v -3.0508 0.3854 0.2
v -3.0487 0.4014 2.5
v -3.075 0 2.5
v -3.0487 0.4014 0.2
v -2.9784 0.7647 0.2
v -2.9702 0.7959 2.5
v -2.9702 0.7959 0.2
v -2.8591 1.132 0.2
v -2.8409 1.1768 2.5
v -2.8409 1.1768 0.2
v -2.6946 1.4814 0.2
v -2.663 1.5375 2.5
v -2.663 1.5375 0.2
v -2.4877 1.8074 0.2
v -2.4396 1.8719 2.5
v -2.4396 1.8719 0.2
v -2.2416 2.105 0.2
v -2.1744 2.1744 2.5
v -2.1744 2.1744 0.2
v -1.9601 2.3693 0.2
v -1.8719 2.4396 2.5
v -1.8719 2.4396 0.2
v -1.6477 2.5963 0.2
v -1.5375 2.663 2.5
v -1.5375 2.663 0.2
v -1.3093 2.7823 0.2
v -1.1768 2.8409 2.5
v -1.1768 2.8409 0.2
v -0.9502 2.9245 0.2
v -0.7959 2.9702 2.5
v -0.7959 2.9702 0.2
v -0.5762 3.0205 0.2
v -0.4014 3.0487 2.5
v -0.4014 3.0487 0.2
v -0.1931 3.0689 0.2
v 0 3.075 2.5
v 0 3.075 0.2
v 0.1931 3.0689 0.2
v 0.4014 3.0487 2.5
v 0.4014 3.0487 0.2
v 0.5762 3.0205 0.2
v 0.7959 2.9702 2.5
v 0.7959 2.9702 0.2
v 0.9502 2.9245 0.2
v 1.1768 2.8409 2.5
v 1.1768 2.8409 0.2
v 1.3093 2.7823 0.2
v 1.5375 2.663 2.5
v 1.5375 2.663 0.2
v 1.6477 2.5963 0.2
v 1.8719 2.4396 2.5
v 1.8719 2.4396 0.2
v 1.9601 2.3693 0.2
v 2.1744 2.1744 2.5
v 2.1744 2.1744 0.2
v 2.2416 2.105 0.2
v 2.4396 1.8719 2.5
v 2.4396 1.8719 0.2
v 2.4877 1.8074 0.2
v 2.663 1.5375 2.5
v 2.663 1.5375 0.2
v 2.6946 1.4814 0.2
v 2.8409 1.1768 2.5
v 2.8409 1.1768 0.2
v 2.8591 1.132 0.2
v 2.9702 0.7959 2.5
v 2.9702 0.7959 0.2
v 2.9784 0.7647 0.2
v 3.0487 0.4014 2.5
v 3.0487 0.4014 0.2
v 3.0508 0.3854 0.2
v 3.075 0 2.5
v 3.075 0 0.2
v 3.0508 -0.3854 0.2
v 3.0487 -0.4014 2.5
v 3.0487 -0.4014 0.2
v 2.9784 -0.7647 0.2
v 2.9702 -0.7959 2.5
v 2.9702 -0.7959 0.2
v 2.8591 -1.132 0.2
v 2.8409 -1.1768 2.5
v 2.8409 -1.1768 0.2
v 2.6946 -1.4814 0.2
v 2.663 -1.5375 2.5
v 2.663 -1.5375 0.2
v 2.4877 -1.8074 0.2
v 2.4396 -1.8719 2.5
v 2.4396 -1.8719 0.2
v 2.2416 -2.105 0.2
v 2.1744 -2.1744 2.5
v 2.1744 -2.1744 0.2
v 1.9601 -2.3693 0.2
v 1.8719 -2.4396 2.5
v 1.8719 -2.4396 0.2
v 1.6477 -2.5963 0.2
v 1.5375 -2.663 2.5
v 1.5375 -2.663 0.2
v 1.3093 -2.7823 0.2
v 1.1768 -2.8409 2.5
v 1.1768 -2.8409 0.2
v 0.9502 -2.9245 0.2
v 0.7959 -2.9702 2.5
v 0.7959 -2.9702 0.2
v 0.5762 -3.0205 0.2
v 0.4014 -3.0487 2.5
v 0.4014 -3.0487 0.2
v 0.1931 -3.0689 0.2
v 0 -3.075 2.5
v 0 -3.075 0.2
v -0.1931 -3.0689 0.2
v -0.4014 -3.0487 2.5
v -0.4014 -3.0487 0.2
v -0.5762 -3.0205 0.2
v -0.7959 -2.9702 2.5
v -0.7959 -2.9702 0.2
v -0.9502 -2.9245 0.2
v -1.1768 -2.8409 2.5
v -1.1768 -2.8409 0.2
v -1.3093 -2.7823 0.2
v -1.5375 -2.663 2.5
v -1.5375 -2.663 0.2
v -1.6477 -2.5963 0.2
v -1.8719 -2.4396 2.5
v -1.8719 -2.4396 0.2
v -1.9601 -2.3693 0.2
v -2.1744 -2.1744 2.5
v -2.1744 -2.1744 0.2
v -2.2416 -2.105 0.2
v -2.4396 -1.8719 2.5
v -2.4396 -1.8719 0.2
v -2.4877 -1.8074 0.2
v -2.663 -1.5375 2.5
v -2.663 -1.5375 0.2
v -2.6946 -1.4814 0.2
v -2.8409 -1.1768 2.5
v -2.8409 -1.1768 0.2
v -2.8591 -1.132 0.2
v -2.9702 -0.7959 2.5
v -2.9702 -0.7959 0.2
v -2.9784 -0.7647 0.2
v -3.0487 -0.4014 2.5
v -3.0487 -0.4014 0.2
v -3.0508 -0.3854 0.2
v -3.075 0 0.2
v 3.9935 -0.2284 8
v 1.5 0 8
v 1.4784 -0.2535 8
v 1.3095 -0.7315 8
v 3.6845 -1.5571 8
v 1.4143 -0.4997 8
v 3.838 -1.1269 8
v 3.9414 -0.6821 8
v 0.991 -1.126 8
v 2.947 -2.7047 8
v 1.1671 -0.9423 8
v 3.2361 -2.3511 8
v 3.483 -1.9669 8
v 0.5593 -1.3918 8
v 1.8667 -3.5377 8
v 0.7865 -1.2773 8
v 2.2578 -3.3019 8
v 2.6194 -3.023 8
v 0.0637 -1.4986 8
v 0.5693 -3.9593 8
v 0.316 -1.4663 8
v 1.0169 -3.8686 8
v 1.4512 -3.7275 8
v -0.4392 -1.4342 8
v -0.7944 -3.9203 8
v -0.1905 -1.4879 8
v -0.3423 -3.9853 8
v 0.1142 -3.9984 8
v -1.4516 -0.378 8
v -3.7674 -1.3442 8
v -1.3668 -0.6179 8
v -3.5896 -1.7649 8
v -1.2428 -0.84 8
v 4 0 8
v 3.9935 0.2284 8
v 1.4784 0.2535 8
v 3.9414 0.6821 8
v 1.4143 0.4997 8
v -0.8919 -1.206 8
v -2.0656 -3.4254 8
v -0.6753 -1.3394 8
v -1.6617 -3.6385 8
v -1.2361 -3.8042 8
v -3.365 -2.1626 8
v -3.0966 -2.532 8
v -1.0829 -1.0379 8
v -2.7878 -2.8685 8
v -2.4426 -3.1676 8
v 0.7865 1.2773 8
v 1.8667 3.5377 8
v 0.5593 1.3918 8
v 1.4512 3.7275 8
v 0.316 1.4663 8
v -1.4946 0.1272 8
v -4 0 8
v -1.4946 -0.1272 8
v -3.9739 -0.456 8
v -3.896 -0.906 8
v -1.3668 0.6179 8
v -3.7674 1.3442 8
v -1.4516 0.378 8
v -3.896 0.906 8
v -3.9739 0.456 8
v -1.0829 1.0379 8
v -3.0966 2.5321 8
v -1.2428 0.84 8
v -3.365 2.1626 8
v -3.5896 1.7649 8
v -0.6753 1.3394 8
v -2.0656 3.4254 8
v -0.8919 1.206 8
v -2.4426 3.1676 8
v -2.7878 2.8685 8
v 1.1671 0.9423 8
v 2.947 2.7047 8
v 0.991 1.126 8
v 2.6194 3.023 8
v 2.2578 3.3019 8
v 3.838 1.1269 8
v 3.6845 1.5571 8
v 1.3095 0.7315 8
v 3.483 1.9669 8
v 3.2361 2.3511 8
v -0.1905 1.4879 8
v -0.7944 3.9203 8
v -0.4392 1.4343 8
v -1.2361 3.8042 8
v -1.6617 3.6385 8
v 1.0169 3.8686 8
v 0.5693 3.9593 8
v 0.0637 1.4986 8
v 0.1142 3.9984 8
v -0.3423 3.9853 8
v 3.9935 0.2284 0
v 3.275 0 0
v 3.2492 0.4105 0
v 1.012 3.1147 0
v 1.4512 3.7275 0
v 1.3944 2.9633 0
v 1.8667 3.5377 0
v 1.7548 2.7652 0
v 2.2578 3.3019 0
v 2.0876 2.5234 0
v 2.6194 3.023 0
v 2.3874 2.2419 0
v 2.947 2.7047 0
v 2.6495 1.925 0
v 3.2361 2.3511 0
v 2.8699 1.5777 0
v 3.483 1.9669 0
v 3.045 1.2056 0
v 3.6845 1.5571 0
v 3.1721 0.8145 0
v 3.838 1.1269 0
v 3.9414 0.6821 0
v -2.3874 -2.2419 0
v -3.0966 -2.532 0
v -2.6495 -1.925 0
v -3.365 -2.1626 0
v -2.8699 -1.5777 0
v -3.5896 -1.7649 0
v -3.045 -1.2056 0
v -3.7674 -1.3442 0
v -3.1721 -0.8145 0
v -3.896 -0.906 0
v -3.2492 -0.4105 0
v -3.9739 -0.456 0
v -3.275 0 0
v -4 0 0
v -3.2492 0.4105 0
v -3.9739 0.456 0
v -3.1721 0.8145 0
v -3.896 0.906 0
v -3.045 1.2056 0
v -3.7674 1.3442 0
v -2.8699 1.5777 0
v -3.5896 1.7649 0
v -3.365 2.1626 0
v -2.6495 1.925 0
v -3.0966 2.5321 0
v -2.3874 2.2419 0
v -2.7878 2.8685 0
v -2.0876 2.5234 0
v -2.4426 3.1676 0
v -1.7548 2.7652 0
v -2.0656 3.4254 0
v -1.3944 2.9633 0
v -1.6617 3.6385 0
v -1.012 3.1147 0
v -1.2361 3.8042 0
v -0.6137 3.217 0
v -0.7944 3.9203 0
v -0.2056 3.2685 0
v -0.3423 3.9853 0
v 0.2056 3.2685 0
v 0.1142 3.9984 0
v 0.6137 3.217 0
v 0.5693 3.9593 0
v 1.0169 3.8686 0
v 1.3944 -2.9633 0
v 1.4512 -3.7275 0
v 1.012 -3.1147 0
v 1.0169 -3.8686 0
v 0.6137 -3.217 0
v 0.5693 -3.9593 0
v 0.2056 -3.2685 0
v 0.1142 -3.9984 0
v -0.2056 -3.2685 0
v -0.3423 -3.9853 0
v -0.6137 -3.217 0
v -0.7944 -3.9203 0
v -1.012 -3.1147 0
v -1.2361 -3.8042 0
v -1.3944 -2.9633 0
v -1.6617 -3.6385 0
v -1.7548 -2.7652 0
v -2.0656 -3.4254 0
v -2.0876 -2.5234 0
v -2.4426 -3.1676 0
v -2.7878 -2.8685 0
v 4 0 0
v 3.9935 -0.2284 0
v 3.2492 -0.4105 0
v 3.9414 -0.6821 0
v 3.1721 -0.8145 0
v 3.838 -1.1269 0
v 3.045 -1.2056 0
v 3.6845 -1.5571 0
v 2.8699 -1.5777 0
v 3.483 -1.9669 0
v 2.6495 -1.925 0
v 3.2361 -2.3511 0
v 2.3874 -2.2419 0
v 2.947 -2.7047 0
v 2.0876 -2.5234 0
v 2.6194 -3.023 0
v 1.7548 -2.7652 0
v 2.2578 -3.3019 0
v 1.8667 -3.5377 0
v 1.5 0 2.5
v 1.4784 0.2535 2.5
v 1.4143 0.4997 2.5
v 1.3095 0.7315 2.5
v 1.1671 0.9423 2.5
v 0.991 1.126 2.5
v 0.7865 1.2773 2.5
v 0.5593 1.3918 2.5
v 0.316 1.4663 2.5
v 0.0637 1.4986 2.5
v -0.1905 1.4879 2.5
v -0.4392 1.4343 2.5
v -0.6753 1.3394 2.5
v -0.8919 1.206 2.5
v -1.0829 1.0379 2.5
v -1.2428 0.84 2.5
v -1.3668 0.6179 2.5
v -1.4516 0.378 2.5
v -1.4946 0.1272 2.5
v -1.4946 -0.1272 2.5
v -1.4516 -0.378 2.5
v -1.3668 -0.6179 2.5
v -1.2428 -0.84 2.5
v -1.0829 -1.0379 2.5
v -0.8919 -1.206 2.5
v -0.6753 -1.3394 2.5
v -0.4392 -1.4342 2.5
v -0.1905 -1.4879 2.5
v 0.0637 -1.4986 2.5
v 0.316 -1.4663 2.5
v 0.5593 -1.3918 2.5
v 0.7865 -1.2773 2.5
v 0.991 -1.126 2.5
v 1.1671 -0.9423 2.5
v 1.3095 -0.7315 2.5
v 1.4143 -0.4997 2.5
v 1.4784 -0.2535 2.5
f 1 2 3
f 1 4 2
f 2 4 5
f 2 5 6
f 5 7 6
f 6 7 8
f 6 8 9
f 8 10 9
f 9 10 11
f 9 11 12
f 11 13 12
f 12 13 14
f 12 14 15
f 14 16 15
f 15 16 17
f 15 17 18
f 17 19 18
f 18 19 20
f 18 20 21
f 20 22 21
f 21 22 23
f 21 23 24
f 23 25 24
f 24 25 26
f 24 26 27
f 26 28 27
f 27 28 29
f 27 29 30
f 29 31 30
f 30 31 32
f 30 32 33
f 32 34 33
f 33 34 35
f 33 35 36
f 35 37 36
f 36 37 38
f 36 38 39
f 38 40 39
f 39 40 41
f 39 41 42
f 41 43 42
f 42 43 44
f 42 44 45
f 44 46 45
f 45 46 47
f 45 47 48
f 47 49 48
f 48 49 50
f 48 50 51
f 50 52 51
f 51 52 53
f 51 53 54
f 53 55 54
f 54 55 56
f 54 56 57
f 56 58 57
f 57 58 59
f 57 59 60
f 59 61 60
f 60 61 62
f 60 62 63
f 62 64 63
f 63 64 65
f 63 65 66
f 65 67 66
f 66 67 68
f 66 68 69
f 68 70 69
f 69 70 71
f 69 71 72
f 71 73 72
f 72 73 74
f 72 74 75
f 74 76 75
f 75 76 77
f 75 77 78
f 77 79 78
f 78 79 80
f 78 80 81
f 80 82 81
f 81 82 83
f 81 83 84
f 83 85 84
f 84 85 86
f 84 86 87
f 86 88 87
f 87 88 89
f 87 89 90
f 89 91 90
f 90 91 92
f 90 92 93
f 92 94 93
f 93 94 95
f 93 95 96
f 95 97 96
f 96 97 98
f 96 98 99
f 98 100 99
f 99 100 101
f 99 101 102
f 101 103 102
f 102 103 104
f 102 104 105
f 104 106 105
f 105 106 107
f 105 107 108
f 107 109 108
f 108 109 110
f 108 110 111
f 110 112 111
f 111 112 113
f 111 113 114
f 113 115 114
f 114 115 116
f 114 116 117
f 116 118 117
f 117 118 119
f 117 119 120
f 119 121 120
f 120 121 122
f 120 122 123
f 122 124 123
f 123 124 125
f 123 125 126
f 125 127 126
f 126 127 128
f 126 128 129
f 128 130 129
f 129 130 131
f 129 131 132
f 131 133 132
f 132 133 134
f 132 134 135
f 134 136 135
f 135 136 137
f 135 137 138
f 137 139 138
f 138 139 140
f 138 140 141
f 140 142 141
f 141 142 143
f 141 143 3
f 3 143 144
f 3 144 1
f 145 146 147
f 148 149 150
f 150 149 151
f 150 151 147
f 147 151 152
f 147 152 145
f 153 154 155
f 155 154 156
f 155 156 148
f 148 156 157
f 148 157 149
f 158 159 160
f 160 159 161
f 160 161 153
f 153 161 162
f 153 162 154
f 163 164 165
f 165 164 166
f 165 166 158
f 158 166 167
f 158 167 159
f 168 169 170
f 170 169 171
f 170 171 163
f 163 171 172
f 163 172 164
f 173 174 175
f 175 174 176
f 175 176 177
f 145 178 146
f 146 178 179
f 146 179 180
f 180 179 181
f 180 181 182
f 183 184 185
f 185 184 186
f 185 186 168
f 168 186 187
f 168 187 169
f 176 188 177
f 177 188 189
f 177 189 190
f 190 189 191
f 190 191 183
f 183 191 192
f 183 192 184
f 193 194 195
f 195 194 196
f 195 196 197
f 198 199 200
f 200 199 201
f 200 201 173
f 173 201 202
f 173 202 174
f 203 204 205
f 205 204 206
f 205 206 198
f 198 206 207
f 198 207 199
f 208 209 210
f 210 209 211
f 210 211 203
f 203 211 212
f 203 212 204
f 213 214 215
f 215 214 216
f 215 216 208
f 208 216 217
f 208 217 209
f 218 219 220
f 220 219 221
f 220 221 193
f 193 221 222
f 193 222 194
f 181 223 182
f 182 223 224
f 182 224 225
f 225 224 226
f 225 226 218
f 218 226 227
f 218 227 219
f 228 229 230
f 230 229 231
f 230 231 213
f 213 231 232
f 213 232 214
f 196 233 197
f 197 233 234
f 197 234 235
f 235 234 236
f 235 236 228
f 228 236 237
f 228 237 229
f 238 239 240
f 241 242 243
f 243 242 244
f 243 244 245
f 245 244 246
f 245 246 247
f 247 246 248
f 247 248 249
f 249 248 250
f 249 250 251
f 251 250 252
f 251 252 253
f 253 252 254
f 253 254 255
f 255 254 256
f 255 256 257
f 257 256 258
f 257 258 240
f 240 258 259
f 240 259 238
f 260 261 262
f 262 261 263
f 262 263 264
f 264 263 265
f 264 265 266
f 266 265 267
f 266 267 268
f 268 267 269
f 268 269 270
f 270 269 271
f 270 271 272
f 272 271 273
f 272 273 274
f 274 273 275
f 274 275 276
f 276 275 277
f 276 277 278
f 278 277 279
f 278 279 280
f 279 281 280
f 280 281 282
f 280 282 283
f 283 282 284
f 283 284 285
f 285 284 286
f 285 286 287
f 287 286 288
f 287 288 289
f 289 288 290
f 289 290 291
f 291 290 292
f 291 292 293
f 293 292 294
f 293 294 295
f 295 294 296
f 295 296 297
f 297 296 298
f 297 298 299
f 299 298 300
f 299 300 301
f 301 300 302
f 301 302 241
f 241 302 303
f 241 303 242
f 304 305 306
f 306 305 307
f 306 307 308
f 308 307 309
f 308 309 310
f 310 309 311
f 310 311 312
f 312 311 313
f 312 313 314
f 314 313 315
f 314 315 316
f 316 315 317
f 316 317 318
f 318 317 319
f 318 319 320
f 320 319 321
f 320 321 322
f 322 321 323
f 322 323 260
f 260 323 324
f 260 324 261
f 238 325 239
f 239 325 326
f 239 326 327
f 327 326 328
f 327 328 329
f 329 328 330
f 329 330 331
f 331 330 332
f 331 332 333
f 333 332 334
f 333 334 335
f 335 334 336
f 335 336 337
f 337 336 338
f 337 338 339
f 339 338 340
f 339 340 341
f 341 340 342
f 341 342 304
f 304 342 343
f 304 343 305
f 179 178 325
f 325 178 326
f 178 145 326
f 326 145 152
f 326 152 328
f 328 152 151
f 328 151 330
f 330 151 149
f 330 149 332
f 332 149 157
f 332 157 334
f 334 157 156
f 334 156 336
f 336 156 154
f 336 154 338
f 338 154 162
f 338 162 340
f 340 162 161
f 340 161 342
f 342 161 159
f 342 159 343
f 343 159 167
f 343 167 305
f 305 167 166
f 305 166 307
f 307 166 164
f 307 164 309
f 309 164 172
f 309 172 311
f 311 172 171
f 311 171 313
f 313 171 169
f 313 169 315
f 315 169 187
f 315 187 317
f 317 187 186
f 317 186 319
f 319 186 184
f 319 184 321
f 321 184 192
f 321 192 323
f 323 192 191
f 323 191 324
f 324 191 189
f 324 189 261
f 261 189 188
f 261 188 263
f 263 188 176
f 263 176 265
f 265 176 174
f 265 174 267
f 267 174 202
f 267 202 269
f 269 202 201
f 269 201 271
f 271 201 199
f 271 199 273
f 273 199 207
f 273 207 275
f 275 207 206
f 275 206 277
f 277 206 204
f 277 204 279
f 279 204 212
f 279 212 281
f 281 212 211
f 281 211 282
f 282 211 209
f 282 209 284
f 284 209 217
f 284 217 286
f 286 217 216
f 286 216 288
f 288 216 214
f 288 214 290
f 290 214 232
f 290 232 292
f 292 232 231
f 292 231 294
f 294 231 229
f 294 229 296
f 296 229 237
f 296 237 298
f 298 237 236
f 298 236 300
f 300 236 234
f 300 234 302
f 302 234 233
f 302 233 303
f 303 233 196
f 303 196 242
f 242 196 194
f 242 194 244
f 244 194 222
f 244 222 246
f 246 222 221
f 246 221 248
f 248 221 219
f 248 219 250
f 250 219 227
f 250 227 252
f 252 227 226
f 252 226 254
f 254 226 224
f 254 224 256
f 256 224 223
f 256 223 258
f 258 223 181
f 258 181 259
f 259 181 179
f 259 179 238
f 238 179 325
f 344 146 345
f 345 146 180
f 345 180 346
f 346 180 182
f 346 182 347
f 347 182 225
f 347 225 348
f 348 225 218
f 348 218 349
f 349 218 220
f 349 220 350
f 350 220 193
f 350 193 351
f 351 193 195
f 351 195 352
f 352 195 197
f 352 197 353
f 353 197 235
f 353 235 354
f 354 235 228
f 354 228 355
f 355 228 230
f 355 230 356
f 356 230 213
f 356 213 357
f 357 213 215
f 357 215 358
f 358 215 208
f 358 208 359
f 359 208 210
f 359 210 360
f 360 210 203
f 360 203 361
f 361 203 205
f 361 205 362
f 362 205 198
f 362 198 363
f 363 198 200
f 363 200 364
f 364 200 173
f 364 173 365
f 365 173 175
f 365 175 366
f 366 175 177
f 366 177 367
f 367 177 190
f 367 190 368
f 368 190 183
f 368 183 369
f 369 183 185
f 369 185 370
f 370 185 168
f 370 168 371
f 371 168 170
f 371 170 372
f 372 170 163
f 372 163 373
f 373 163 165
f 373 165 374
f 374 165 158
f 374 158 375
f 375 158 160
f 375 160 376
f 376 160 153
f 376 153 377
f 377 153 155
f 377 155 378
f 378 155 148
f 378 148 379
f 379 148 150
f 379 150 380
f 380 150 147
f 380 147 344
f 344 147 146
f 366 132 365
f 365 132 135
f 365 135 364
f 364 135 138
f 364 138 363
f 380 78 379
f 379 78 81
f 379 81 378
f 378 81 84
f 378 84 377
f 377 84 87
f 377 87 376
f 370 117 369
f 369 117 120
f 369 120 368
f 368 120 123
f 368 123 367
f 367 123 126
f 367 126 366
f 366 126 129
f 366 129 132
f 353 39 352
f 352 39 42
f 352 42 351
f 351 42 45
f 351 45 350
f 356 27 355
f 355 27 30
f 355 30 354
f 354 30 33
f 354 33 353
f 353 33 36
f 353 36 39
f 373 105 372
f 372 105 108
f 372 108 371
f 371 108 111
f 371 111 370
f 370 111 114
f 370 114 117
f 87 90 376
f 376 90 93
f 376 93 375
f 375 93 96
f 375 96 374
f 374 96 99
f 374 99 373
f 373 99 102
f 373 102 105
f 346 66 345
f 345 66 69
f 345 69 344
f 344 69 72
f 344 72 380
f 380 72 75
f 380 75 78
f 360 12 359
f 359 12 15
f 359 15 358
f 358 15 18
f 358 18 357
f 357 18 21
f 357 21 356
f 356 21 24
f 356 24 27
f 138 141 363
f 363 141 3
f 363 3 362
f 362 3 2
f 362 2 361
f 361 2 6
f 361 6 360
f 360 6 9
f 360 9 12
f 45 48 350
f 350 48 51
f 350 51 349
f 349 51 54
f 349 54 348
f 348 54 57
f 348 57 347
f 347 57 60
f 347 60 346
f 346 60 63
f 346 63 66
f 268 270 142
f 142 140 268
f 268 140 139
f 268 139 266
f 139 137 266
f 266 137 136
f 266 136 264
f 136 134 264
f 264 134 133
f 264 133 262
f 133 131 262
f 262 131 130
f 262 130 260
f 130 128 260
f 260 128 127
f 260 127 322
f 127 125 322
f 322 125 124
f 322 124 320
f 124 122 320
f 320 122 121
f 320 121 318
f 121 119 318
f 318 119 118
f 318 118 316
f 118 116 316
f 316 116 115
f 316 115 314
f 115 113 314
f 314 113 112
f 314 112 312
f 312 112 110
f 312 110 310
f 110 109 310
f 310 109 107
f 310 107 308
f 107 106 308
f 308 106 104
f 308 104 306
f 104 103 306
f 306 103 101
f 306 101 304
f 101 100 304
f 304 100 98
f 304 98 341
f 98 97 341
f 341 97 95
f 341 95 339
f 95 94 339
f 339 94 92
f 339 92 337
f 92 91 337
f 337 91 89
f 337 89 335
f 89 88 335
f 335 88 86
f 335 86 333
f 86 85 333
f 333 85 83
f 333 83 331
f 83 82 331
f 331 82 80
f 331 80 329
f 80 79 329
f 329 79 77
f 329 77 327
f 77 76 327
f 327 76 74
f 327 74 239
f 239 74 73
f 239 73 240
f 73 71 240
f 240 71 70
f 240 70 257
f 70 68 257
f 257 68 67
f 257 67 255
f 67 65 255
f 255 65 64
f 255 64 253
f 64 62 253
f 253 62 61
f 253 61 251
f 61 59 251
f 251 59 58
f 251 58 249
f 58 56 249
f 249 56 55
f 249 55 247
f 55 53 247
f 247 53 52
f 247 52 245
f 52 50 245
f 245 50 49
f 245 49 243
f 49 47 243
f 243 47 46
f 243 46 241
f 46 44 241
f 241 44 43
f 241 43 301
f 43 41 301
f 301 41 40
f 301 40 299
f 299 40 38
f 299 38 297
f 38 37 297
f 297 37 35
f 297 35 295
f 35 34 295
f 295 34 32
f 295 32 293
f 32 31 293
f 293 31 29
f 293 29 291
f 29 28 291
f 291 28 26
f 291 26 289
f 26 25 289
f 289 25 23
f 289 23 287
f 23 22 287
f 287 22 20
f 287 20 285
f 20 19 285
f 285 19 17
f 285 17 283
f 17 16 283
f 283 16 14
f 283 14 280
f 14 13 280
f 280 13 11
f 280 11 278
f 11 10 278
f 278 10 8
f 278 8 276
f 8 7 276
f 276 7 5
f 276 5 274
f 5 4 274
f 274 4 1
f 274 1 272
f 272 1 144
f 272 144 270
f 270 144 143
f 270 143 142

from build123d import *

# Parameters (mm, degrees)
SKETCH1_R           = 4
SKETCH1_R_2         = 3.075
BOSS_EXTRUDE1_DEPTH = 8
BOSS_EXTRUDE2_START = -5.5
SKETCH2_R           = 3.075
SKETCH2_R_2         = 1.5
BOSS_EXTRUDE2_DEPTH = 5.5
CHAMFER1_SIZE       = 0.2


with BuildPart() as part:
    # Sketch1 → Boss-Extrude1 (new body)
    with BuildSketch(Plane.XY):
        Circle(SKETCH1_R)
        Circle(SKETCH1_R_2, mode=Mode.SUBTRACT)
    extrude(amount=BOSS_EXTRUDE1_DEPTH)

    # Sketch2 → Boss-Extrude2 (add)
    with BuildSketch(Plane.XY.offset(8).offset(BOSS_EXTRUDE2_START)):
        Circle(SKETCH2_R)
        Circle(SKETCH2_R_2, mode=Mode.SUBTRACT)
    extrude(amount=BOSS_EXTRUDE2_DEPTH)

    # Chamfer1
    chamfer1_edges = [part.edges().sort_by_distance(p)[0] for p in [
        (-3.075, 0, 0),
    ]]
    chamfer(chamfer1_edges, length=CHAMFER1_SIZE)


solid = part.part
